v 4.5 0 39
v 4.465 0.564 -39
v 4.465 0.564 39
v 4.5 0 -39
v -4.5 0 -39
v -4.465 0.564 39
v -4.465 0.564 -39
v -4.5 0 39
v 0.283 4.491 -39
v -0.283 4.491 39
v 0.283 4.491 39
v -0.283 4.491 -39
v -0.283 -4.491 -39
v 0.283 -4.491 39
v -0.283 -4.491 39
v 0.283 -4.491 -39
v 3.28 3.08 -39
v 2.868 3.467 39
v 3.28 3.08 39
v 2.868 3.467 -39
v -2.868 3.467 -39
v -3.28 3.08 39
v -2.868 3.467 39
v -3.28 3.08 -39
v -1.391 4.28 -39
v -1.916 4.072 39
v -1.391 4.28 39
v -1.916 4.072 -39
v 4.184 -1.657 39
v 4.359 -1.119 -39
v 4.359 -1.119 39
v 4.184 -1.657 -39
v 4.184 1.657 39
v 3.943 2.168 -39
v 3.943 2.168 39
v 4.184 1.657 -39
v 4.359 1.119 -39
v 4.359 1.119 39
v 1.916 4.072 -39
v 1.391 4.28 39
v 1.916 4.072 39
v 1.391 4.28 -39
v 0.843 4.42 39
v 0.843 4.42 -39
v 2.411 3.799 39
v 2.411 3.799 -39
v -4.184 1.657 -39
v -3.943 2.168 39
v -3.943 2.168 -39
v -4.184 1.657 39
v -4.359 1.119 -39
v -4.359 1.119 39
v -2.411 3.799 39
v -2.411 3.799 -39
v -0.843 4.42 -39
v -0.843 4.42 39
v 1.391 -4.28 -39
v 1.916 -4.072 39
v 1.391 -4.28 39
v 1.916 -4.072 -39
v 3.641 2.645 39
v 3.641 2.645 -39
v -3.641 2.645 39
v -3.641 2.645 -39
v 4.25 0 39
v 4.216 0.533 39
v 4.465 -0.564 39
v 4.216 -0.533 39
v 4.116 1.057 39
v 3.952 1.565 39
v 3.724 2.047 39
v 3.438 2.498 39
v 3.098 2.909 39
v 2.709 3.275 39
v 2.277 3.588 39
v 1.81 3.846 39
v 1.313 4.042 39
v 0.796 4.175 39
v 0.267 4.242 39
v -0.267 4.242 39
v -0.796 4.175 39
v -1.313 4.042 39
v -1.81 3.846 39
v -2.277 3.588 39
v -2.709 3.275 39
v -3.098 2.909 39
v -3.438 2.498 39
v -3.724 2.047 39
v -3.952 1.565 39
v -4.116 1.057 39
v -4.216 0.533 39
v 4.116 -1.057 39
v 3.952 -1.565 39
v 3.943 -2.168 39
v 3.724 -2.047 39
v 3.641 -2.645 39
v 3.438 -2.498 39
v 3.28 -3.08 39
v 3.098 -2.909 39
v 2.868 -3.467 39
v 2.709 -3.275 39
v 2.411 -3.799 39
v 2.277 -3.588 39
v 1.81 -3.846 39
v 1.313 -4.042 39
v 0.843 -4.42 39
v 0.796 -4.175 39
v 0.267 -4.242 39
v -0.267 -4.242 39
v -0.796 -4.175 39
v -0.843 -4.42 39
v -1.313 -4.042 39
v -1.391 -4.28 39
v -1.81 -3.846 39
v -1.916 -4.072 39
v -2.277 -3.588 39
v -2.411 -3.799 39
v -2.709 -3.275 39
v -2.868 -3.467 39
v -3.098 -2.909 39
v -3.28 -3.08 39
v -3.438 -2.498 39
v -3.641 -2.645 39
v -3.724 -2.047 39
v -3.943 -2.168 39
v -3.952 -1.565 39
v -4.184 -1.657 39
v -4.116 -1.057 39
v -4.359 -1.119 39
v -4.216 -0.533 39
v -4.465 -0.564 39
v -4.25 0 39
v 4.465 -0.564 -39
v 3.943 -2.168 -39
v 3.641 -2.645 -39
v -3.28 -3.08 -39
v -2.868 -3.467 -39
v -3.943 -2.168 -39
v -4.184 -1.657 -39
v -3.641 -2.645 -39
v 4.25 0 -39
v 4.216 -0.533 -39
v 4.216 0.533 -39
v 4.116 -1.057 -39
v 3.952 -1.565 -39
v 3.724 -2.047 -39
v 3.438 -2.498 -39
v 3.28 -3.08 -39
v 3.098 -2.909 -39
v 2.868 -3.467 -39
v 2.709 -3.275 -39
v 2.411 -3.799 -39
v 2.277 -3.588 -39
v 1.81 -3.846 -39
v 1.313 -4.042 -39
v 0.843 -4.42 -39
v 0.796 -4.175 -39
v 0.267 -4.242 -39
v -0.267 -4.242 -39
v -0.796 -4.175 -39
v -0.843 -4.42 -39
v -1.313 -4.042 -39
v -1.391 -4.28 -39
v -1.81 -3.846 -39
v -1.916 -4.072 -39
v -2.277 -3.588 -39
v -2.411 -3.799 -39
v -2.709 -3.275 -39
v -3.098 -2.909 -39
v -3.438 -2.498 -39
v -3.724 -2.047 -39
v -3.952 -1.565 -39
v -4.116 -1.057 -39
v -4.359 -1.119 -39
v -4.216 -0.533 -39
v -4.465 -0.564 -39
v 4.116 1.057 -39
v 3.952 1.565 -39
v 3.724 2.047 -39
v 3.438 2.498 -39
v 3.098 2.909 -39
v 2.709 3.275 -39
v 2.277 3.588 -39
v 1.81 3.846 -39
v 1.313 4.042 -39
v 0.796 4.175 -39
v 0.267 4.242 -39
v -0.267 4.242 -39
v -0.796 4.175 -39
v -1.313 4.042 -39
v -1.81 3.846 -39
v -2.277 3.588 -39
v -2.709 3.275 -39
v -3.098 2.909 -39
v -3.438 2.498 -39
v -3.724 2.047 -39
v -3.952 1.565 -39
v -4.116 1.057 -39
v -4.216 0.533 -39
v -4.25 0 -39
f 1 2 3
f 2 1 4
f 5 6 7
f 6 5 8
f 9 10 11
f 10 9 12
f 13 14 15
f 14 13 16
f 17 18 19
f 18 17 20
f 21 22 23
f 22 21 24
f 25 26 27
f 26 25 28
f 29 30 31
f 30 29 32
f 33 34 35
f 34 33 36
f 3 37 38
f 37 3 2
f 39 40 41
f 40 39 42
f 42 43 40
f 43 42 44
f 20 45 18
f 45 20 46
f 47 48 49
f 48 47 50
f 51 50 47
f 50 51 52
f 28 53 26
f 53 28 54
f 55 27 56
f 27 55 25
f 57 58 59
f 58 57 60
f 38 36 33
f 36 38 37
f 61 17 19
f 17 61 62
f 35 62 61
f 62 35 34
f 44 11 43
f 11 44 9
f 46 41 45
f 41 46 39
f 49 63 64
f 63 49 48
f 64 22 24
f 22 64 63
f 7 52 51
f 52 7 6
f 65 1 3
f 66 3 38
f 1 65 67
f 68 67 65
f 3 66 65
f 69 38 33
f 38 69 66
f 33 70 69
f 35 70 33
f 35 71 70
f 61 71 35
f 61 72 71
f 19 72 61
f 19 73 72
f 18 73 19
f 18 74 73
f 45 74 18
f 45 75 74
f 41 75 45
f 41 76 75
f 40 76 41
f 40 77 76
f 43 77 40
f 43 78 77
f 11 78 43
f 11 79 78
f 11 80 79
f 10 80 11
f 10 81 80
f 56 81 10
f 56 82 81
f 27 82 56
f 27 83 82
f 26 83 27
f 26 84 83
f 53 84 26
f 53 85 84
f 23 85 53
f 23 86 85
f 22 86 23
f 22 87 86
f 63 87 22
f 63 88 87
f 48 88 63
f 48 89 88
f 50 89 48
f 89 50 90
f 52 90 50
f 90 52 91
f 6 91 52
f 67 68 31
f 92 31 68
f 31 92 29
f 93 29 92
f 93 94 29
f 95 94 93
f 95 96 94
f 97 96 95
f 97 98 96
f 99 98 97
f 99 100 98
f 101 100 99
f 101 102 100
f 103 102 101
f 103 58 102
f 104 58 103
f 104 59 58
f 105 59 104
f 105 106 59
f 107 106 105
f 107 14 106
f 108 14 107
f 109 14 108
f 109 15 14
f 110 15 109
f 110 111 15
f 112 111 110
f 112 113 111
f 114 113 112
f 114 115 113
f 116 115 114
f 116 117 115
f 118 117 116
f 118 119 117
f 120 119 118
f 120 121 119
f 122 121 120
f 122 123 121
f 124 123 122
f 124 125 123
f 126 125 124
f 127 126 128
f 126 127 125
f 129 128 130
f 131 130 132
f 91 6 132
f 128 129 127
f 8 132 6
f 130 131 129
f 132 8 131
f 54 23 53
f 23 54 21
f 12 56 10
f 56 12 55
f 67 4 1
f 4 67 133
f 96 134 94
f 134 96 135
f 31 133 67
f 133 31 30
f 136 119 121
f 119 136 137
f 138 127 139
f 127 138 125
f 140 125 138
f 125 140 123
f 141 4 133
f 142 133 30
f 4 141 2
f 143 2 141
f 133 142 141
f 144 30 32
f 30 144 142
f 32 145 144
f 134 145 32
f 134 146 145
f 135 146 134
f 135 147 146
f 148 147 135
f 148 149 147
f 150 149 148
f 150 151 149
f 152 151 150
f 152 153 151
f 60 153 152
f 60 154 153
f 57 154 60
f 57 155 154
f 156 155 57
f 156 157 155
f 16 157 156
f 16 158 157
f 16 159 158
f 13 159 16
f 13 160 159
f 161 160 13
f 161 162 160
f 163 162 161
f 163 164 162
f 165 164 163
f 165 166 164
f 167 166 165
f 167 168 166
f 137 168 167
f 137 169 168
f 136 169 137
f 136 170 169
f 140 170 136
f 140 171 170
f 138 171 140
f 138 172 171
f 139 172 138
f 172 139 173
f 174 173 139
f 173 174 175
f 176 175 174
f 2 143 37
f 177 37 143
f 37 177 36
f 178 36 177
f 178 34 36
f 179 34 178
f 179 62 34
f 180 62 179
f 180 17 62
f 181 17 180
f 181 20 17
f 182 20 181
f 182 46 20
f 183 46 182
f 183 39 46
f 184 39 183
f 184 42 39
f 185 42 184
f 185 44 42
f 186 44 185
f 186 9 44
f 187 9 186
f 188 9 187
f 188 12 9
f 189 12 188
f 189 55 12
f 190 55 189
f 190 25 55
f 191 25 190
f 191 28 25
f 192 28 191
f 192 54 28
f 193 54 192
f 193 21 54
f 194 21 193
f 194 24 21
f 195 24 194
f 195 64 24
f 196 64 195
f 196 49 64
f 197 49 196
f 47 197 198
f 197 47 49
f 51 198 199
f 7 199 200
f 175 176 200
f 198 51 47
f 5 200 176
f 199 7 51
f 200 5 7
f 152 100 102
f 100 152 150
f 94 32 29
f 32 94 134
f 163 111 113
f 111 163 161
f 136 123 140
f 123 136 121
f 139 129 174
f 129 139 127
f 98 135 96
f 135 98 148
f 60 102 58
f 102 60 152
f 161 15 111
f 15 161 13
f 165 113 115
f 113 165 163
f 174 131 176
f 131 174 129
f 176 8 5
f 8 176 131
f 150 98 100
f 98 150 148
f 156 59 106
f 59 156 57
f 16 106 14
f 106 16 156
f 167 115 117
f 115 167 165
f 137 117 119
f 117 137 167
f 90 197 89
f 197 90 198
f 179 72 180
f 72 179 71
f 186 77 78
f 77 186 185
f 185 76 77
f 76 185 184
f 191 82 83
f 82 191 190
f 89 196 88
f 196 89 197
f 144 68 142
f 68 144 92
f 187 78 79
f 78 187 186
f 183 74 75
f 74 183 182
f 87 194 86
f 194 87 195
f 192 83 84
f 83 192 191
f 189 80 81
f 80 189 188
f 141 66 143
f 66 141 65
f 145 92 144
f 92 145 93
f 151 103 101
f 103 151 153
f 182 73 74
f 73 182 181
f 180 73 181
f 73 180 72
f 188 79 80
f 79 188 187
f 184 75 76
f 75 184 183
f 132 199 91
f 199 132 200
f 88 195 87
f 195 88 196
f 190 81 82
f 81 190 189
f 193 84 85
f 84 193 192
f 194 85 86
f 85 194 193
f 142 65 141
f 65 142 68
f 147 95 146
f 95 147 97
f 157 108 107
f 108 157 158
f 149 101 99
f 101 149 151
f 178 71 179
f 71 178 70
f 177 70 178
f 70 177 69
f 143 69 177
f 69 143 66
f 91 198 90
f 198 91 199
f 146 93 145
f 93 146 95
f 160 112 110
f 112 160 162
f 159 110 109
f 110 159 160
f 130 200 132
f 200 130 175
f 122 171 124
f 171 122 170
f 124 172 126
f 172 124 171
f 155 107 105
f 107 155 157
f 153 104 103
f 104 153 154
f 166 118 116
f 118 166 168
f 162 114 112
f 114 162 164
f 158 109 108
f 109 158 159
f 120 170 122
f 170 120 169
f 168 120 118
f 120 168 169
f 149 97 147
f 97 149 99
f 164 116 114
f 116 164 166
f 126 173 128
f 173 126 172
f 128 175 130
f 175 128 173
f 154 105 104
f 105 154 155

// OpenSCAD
$fn = 50;


difference() {
	union() {
		translate(v = [0, 0, -39.0000000000]) {
			cylinder(h = 78, r = 4.5000000000);
		}
	}
	union() {
		translate(v = [0, 0, -100.0000000000]) {
			cylinder(h = 200, r = 4.2500000000);
		}
	}
}
